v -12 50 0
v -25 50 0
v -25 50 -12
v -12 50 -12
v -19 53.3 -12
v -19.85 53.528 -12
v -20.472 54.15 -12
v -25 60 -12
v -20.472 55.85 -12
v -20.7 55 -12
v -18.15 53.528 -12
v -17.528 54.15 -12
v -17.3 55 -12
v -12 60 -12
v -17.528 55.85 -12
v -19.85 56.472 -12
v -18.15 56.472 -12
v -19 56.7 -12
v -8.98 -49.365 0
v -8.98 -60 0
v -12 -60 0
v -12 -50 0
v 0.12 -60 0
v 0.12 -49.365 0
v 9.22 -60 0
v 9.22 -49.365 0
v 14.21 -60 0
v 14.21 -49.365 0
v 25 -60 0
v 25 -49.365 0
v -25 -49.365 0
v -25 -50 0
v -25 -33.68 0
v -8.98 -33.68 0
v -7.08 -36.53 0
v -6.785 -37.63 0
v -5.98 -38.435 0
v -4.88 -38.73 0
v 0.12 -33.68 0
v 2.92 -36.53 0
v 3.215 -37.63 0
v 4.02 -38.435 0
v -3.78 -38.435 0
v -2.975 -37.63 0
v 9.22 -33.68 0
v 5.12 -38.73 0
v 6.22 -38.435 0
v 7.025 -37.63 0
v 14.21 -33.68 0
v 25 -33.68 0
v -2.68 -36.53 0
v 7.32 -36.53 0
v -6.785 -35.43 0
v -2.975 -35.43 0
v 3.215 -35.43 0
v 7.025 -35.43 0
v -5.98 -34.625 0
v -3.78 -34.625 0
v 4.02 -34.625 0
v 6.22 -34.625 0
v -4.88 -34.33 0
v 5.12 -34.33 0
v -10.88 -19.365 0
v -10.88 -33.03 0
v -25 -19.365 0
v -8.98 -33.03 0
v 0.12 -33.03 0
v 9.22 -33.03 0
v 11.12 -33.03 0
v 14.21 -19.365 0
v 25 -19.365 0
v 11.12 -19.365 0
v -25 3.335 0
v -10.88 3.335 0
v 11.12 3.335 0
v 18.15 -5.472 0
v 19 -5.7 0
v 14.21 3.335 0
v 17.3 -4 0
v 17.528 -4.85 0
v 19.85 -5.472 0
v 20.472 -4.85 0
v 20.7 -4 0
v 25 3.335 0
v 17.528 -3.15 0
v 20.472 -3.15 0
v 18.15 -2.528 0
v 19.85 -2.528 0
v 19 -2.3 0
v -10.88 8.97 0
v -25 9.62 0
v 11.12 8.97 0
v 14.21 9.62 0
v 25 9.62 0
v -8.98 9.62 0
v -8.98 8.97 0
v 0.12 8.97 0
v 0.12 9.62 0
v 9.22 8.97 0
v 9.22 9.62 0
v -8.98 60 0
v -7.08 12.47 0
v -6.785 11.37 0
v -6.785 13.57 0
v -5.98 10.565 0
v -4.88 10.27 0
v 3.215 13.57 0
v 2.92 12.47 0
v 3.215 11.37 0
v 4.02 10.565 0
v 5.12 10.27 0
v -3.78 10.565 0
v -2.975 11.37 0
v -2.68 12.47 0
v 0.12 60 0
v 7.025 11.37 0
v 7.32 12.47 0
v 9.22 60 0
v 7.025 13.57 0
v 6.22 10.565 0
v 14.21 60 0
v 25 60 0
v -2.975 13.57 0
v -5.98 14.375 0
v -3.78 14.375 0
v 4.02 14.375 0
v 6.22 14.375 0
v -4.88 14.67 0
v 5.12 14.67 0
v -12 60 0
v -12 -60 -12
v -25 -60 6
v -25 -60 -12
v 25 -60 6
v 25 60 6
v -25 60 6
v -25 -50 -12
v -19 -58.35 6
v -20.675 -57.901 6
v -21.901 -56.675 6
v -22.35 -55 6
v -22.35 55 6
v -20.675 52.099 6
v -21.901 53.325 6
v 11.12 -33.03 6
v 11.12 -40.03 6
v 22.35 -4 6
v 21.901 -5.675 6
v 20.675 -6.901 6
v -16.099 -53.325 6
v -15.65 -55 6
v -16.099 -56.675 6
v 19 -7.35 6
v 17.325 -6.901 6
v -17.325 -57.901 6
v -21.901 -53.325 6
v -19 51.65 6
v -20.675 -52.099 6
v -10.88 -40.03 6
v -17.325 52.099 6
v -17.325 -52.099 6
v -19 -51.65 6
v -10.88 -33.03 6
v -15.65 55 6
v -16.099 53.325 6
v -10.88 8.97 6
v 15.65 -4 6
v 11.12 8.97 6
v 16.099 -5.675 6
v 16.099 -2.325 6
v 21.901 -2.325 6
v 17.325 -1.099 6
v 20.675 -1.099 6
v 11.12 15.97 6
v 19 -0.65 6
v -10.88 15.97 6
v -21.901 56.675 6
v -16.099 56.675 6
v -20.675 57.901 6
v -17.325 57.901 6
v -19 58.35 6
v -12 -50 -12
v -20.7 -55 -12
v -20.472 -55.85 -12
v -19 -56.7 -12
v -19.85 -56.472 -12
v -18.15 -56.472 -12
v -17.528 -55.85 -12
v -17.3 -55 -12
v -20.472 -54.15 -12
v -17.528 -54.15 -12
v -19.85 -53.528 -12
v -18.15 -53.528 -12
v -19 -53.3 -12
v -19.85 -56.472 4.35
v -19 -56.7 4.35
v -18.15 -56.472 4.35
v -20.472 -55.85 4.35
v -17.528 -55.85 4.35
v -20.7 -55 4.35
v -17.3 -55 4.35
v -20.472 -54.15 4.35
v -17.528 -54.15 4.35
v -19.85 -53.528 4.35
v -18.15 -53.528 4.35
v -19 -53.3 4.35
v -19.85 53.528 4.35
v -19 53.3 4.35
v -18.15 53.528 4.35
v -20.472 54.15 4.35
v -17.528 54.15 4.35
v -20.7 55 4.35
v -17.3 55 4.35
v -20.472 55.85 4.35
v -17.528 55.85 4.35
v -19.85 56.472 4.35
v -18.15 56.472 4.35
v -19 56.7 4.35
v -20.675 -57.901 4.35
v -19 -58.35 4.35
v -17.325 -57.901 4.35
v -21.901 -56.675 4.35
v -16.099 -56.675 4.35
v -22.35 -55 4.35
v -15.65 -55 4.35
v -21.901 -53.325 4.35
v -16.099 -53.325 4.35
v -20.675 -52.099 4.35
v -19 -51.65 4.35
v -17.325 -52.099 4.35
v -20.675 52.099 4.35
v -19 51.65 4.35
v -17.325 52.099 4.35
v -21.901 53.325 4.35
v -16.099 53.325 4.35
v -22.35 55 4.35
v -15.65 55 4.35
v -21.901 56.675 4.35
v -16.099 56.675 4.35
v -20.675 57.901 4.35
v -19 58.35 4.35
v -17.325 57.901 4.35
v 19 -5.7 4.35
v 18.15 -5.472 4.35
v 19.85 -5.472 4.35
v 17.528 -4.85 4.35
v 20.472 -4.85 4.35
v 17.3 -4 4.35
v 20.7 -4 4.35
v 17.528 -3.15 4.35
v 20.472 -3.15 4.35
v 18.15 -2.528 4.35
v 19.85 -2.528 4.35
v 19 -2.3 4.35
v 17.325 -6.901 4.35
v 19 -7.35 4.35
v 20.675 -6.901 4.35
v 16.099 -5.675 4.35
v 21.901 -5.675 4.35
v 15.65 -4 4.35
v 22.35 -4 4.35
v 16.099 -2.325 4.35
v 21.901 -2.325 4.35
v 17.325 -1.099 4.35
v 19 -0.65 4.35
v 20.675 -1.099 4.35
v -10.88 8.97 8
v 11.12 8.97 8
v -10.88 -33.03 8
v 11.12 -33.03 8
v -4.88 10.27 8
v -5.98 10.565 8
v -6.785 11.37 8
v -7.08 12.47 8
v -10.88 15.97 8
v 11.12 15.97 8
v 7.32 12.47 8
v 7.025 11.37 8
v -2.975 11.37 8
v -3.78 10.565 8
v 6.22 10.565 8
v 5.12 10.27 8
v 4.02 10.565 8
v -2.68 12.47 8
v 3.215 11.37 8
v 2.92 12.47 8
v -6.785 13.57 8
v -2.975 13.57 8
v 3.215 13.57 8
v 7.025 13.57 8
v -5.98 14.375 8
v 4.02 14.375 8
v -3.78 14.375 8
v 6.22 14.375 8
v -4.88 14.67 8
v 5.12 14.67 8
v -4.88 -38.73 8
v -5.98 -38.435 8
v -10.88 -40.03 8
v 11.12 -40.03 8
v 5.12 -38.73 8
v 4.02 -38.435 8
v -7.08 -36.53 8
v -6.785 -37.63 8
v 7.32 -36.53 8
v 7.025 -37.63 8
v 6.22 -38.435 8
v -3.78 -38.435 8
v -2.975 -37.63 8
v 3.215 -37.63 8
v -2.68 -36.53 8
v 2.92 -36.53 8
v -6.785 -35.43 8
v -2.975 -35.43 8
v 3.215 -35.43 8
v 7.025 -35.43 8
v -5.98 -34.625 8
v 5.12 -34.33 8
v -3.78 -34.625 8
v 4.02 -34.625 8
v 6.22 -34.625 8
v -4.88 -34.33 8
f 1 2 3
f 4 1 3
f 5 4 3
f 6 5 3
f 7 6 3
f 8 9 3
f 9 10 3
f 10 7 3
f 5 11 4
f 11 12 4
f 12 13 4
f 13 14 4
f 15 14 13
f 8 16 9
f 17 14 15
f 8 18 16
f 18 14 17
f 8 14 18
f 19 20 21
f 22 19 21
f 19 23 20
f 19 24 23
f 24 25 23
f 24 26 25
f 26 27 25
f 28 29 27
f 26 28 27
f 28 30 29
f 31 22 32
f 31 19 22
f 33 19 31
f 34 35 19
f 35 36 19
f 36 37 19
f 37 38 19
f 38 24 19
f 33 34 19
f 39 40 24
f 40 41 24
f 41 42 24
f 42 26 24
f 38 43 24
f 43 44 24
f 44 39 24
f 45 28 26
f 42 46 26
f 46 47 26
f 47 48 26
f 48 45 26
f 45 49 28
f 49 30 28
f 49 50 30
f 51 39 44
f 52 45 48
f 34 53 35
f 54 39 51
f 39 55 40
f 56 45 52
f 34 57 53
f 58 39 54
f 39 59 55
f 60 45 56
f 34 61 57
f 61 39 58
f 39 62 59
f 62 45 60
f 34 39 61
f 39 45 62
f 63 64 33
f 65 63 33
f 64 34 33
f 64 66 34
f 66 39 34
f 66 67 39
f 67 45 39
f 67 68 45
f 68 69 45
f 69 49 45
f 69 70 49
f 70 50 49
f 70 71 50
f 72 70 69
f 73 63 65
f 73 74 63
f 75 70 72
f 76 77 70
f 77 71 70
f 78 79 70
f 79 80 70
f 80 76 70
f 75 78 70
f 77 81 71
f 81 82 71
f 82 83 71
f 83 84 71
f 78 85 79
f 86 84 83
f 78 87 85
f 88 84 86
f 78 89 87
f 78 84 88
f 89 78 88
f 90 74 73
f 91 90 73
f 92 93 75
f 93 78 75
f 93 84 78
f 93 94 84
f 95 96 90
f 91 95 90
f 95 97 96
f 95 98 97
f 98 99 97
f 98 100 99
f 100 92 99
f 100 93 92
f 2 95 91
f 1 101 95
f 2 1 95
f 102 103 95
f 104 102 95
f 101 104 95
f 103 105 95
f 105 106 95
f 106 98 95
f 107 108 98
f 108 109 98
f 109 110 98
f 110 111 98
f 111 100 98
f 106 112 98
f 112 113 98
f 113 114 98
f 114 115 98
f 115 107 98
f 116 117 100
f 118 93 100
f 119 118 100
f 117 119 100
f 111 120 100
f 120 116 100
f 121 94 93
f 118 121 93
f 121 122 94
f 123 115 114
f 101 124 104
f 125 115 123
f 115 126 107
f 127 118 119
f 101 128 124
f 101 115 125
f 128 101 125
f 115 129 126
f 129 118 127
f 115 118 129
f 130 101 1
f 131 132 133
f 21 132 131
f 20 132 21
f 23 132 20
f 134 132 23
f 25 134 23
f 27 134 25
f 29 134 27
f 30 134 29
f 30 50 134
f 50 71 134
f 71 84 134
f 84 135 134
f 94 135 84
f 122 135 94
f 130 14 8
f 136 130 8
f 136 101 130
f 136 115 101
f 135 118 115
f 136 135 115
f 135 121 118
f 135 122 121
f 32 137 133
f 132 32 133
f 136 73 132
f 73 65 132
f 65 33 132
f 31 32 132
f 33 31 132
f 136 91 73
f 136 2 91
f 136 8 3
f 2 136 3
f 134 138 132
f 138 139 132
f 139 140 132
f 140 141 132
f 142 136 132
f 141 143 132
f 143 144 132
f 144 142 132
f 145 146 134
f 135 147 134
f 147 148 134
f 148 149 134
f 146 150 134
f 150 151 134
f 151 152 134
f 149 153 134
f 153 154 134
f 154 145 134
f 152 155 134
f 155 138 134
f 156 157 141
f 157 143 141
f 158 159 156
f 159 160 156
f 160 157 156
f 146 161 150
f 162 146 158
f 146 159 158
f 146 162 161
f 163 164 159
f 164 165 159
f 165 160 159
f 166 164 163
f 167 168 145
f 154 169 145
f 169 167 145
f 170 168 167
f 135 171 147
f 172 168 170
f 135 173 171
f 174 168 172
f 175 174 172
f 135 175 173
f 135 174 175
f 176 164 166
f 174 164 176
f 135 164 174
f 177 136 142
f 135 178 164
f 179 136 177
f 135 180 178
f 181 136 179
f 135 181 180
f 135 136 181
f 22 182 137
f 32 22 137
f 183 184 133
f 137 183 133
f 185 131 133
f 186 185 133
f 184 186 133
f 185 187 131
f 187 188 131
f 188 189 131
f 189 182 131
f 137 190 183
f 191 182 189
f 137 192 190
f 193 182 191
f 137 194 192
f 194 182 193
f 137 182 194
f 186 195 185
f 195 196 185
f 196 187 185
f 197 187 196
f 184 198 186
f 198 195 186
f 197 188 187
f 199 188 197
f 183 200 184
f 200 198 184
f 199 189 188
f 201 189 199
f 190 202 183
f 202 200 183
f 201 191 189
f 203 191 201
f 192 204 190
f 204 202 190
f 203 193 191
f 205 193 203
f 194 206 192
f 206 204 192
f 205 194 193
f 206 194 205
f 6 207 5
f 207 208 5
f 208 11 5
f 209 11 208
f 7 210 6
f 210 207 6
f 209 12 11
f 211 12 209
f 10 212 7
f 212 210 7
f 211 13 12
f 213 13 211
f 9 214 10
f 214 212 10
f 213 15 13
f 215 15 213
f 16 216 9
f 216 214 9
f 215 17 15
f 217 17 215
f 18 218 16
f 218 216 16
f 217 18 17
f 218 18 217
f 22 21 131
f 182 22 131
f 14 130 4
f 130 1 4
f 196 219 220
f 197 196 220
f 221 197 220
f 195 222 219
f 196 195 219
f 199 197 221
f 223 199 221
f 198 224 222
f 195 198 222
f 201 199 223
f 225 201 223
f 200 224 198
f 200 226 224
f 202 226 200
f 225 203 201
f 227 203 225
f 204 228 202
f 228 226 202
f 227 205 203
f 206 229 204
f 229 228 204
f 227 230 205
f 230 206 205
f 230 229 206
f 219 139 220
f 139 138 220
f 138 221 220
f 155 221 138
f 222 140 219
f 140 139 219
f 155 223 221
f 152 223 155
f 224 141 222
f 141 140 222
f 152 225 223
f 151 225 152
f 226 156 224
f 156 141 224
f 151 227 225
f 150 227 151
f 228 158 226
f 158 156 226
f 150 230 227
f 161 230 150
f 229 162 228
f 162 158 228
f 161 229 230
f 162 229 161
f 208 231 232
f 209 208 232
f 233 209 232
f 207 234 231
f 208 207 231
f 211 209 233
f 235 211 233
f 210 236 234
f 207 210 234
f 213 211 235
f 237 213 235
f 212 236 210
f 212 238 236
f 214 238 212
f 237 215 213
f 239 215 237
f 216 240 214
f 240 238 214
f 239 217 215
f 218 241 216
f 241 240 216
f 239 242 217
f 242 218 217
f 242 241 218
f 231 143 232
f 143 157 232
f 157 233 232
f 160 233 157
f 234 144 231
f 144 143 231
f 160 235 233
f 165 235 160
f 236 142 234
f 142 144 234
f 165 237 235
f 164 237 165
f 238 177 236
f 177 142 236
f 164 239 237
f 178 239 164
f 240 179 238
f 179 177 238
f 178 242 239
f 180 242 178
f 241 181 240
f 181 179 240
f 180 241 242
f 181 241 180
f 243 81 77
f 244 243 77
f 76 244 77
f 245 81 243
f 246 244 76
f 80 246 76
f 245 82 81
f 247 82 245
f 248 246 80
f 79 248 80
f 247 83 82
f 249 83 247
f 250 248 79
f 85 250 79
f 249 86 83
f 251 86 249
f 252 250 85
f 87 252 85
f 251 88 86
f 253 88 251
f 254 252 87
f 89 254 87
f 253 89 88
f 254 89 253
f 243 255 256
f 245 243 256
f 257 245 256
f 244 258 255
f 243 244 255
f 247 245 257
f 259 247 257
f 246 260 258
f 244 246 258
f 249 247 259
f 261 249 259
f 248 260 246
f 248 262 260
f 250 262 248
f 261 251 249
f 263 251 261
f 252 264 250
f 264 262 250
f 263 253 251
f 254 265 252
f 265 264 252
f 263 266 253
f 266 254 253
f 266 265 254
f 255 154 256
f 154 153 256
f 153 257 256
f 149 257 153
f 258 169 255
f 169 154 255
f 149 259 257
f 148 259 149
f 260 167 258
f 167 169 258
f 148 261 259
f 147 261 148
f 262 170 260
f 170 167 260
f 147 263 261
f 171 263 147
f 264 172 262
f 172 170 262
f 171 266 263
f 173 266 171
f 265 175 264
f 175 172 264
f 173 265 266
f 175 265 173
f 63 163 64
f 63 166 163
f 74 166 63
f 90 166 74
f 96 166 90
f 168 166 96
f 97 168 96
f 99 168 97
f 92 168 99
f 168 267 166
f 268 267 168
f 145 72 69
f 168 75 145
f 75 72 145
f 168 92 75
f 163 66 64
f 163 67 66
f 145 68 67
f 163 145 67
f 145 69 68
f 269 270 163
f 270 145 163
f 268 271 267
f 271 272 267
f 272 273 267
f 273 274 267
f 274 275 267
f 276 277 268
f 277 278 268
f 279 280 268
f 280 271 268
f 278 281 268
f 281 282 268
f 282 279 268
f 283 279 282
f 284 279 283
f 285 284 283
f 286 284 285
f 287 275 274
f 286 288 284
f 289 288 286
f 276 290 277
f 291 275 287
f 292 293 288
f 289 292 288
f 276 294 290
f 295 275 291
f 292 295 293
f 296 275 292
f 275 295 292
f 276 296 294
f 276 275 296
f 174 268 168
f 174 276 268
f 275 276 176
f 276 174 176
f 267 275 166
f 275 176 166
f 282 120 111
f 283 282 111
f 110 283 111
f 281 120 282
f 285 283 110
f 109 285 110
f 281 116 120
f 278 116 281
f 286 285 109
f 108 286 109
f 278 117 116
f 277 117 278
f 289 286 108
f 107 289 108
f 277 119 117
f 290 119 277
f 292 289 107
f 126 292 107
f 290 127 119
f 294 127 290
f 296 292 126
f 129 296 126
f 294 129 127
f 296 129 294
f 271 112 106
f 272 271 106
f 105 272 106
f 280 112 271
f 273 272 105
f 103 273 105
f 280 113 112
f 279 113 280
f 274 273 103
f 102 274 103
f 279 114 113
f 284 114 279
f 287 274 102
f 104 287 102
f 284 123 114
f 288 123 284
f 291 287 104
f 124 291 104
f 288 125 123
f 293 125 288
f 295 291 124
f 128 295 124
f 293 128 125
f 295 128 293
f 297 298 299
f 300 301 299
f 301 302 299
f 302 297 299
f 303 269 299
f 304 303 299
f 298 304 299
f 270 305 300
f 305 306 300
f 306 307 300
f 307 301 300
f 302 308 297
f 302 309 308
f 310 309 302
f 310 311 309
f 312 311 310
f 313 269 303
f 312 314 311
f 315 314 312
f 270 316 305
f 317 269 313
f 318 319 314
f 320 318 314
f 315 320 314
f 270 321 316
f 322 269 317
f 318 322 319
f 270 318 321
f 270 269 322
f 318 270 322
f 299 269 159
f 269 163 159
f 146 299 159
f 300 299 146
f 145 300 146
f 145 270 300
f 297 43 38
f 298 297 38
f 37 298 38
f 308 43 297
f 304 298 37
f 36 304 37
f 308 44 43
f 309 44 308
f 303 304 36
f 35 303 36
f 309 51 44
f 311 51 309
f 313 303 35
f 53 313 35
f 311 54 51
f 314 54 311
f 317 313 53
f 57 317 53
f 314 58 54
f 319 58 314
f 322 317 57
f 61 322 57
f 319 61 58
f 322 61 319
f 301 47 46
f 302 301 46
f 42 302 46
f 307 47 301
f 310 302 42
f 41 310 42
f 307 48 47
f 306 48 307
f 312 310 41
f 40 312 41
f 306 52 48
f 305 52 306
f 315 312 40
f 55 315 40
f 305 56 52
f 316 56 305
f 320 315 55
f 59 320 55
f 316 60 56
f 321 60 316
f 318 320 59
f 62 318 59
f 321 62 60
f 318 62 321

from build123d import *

# Parameters (mm, degrees)
SKETCH1_W                       = 120
SKETCH1_H                       = 50
BOSS_EXTRUDE1_DEPTH             = 6
SKETCH2_W                       = 50
SKETCH2_H                       = 10
BOSS_EXTRUDE2_DEPTH             = 12
SKETCH3_R                       = 1.7
CUT_EXTRUDE1_DEPTH              = 19
SKETCH5_W                       = 10
SKETCH5_H                       = 12
CUT_EXTRUDE2_DEPTH              = 37
CBORE_FOR_M3_SBHCS2_D           = 3.4
CBORE_FOR_M3_SBHCS2_DEPTH       = 3.15
CBORE_FOR_M3_SBHCS2_CBORE_D     = 6.7
CBORE_FOR_M3_SBHCS2_CBORE_DEPTH = 1.65
CBORE_FOR_M3_SBHCS2_TIP         = 1.021463052
SKETCH6_R                       = 1.7
CUT_EXTRUDE3_DEPTH              = 6
CBORE_FOR_M3_SBHCS3_D           = 3.4
CBORE_FOR_M3_SBHCS3_DEPTH       = 3.15
CBORE_FOR_M3_SBHCS3_CBORE_D     = 6.7
CBORE_FOR_M3_SBHCS3_CBORE_DEPTH = 1.65
CBORE_FOR_M3_SBHCS3_TIP         = 1.021463052
SKETCH9_R                       = 3.2
CUT_EXTRUDE4_DEPTH              = 7
SKETCH10_W                      = 22
SKETCH10_H                      = 42
CUT_EXTRUDE5_DEPTH              = 6.5
SKETCH11_W                      = 22
SKETCH11_H                      = 7
SKETCH11_R                      = 2.2
BOSS_EXTRUDE4_DEPTH             = 2
CUT_EXTRUDE6_START              = -6
SKETCH12_R                      = 2.2
CUT_EXTRUDE6_DEPTH              = 6


with BuildPart() as part:
    # Sketch1 → Boss-Extrude1 (new body)
    with BuildSketch(Plane(origin=(0, 0, 0), x_dir=(0, 1, 0), z_dir=(0, 0, 1))):
        Rectangle(SKETCH1_W, SKETCH1_H)
    extrude(amount=BOSS_EXTRUDE1_DEPTH)

    # Sketch2 → Boss-Extrude2 (add)
    with BuildSketch(Plane(origin=(0, 0, 0), x_dir=(1, 0, 0), z_dir=(0, 0, -1))):
        with Locations((0, 55)):
            Rectangle(SKETCH2_W, SKETCH2_H)
        with Locations((0, -55)):
            Rectangle(SKETCH2_W, SKETCH2_H)
    extrude(amount=BOSS_EXTRUDE2_DEPTH)

    # Sketch3 → Cut-Extrude1 (cut)
    with BuildSketch(Plane.XY.offset(6)):
        with Locations((-19, -55)):
            Circle(SKETCH3_R)
        with Locations(Location((-19, 55, 0), (0, 0, 180))):
            Circle(SKETCH3_R)
    extrude(amount=-CUT_EXTRUDE1_DEPTH, mode=Mode.SUBTRACT)

    # Sketch5 → Cut-Extrude2 (cut)
    with BuildSketch(Plane.YZ.offset(25)):
        with Locations((-55, -6)):
            Rectangle(SKETCH5_W, SKETCH5_H)
        with Locations((55, -6)):
            Rectangle(SKETCH5_W, SKETCH5_H)
    extrude(amount=-CUT_EXTRUDE2_DEPTH, mode=Mode.SUBTRACT)

    # CBORE for M3 SBHCS2
    with Locations(Plane(origin=(-19, 55, 6), x_dir=(1, 0, 0), z_dir=(0, 0, 1))):
        with Locations((0, 0), (0, -110)):
            CounterBoreHole(CBORE_FOR_M3_SBHCS2_D / 2, CBORE_FOR_M3_SBHCS2_CBORE_D / 2, CBORE_FOR_M3_SBHCS2_CBORE_DEPTH, depth=CBORE_FOR_M3_SBHCS2_DEPTH)
            with Locations((0, 0, -(CBORE_FOR_M3_SBHCS2_DEPTH + CBORE_FOR_M3_SBHCS2_TIP / 2))):  # 118° drill point
                Cone(0, CBORE_FOR_M3_SBHCS2_D / 2, CBORE_FOR_M3_SBHCS2_TIP, mode=Mode.SUBTRACT)

    # Sketch6 → Cut-Extrude3 (cut)
    with BuildSketch(Plane(origin=(0, 0, 0), x_dir=(1, 0, 0), z_dir=(0, 0, -1))):
        with Locations(Location((19, 4, 0), (0, 0, 180))):
            Circle(SKETCH6_R)
    extrude(amount=-CUT_EXTRUDE3_DEPTH, mode=Mode.SUBTRACT)

    # CBORE for M3 SBHCS3
    with Locations(Plane(origin=(19, -4, 6), x_dir=(1, 0, 0), z_dir=(0, 0, 1))):
        with Locations((0, 0)):
            CounterBoreHole(CBORE_FOR_M3_SBHCS3_D / 2, CBORE_FOR_M3_SBHCS3_CBORE_D / 2, CBORE_FOR_M3_SBHCS3_CBORE_DEPTH, depth=CBORE_FOR_M3_SBHCS3_DEPTH)
            with Locations((0, 0, -(CBORE_FOR_M3_SBHCS3_DEPTH + CBORE_FOR_M3_SBHCS3_TIP / 2))):  # 118° drill point
                Cone(0, CBORE_FOR_M3_SBHCS3_D / 2, CBORE_FOR_M3_SBHCS3_TIP, mode=Mode.SUBTRACT)

    # Sketch9 → Cut-Extrude4 (cut)
    with BuildSketch(Plane.XY.offset(6)):
        with Locations((0.12, -22.03)):
            Circle(SKETCH9_R)
    extrude(amount=-CUT_EXTRUDE4_DEPTH, mode=Mode.SUBTRACT)

    # Sketch10 → Cut-Extrude5 (cut)
    with BuildSketch(Plane.XY.offset(6)):
        with Locations((0.12, -12.03)):
            Rectangle(SKETCH10_W, SKETCH10_H)
    extrude(amount=-CUT_EXTRUDE5_DEPTH, mode=Mode.SUBTRACT)

    # Sketch11 → Boss-Extrude4 (add)
    # profile 1 of 2: a face of its own
    with BuildSketch(Plane.XY.offset(6)):
        with Locations((0.12, -36.53)):
            Rectangle(SKETCH11_W, SKETCH11_H)
        with Locations((-4.88, -36.53)):
            Circle(SKETCH11_R, mode=Mode.SUBTRACT)
        with Locations((5.12, -36.53)):
            Circle(SKETCH11_R, mode=Mode.SUBTRACT)
    # profile 2 of 2: a face of its own
    with BuildSketch(Plane.XY.offset(6)):
        with Locations((0.12, 12.47)):
            Rectangle(SKETCH11_W, SKETCH11_H)
        with Locations(Location((5.12, 12.47, 0), (0, 0, 180))):
            Circle(SKETCH11_R, mode=Mode.SUBTRACT)
        with Locations(Location((-4.88, 12.47, 0), (0, 0, 180))):
            Circle(SKETCH11_R, mode=Mode.SUBTRACT)
    extrude(amount=BOSS_EXTRUDE4_DEPTH)

    # Sketch12 → Cut-Extrude6 (cut)
    with BuildSketch(Plane.XY.offset(6).offset(CUT_EXTRUDE6_START)):
        with Locations((-4.88, -36.53)):
            Circle(SKETCH12_R)
        with Locations((5.12, -36.53)):
            Circle(SKETCH12_R)
        with Locations(Location((-4.88, 12.47, 0), (0, 0, 180))):
            Circle(SKETCH12_R)
        with Locations(Location((5.12, 12.47, 0), (0, 0, 180))):
            Circle(SKETCH12_R)
    extrude(amount=CUT_EXTRUDE6_DEPTH, mode=Mode.SUBTRACT)


solid = part.part
